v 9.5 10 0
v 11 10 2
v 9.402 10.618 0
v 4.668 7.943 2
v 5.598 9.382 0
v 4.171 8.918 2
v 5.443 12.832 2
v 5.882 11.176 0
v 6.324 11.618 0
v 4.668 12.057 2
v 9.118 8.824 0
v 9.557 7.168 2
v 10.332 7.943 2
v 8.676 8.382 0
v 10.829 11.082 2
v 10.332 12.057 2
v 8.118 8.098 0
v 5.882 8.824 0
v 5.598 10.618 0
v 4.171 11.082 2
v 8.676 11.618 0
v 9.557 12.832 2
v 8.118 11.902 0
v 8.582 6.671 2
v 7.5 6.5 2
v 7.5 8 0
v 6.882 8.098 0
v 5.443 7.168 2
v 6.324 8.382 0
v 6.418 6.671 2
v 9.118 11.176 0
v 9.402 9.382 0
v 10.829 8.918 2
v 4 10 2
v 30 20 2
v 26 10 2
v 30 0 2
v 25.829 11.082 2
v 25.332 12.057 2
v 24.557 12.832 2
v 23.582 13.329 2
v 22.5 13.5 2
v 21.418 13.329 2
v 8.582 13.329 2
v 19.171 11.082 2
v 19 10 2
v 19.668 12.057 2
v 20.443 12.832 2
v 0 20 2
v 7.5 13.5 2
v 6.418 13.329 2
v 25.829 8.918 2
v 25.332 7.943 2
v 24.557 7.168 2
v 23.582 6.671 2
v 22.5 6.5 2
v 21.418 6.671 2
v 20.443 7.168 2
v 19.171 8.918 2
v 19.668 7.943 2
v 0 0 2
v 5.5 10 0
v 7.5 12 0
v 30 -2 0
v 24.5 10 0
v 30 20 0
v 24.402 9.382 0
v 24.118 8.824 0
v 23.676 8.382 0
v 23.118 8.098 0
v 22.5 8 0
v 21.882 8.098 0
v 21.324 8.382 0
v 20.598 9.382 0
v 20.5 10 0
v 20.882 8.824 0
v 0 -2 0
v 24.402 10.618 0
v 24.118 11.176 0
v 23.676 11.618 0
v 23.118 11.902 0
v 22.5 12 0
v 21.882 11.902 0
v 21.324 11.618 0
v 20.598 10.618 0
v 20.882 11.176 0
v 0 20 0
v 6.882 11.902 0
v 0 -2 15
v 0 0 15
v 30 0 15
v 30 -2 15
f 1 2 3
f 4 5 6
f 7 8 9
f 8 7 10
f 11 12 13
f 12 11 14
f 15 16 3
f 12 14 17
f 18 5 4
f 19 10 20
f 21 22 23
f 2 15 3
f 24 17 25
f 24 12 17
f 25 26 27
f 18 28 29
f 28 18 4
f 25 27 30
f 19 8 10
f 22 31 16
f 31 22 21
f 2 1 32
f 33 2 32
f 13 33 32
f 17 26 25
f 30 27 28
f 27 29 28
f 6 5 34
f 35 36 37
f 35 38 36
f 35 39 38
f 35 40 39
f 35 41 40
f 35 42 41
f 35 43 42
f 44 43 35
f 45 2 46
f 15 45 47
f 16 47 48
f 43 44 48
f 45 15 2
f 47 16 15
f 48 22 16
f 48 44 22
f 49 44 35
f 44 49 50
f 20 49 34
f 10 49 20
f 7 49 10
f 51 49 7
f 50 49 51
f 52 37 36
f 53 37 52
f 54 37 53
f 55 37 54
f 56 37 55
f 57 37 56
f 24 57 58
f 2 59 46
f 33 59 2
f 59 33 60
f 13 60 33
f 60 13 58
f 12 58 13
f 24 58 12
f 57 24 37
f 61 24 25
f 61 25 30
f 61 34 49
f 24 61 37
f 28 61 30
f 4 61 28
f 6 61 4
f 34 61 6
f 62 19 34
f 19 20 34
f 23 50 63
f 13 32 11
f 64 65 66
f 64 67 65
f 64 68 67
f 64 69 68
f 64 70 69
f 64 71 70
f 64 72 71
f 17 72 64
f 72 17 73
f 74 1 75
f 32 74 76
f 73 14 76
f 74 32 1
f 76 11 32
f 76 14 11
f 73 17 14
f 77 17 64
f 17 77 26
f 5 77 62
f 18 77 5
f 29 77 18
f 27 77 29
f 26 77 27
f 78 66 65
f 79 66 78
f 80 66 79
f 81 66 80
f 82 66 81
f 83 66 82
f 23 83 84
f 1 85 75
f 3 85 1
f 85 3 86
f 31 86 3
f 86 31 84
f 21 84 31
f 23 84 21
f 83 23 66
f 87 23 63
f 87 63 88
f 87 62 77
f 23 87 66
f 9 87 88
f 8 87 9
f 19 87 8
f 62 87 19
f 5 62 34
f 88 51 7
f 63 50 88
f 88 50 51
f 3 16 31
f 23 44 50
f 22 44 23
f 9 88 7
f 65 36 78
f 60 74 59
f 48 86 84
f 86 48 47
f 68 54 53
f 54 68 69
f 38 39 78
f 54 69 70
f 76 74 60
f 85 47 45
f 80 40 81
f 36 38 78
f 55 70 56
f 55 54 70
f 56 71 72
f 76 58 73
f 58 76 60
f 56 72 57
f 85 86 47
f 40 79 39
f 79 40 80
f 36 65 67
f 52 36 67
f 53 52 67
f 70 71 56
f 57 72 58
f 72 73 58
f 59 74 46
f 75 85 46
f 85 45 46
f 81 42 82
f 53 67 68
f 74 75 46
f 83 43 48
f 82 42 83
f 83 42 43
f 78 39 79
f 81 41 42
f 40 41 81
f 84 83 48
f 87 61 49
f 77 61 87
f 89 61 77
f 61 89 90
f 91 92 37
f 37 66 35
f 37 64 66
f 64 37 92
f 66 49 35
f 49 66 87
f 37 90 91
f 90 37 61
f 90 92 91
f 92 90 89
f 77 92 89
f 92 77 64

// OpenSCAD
magnetLength = 30;
magnetWidth = 15;
thickness = 2;
flangeWidth = 20;
screwOD = 7;
screwID = 4;
$fn=20;

difference()
{
    cube([magnetLength,flangeWidth,thickness]);
    translate([0,flangeWidth/2,0])
    {
        translate([magnetLength/4,0,0])
        cylinder(d1=screwID,d2=screwOD,thickness);
        translate([3*magnetLength/4,0,0])
        cylinder(d1=screwID,d2=screwOD,thickness);
    }
}
translate([0,-thickness,0])
cube([magnetLength,thickness,magnetWidth]);
